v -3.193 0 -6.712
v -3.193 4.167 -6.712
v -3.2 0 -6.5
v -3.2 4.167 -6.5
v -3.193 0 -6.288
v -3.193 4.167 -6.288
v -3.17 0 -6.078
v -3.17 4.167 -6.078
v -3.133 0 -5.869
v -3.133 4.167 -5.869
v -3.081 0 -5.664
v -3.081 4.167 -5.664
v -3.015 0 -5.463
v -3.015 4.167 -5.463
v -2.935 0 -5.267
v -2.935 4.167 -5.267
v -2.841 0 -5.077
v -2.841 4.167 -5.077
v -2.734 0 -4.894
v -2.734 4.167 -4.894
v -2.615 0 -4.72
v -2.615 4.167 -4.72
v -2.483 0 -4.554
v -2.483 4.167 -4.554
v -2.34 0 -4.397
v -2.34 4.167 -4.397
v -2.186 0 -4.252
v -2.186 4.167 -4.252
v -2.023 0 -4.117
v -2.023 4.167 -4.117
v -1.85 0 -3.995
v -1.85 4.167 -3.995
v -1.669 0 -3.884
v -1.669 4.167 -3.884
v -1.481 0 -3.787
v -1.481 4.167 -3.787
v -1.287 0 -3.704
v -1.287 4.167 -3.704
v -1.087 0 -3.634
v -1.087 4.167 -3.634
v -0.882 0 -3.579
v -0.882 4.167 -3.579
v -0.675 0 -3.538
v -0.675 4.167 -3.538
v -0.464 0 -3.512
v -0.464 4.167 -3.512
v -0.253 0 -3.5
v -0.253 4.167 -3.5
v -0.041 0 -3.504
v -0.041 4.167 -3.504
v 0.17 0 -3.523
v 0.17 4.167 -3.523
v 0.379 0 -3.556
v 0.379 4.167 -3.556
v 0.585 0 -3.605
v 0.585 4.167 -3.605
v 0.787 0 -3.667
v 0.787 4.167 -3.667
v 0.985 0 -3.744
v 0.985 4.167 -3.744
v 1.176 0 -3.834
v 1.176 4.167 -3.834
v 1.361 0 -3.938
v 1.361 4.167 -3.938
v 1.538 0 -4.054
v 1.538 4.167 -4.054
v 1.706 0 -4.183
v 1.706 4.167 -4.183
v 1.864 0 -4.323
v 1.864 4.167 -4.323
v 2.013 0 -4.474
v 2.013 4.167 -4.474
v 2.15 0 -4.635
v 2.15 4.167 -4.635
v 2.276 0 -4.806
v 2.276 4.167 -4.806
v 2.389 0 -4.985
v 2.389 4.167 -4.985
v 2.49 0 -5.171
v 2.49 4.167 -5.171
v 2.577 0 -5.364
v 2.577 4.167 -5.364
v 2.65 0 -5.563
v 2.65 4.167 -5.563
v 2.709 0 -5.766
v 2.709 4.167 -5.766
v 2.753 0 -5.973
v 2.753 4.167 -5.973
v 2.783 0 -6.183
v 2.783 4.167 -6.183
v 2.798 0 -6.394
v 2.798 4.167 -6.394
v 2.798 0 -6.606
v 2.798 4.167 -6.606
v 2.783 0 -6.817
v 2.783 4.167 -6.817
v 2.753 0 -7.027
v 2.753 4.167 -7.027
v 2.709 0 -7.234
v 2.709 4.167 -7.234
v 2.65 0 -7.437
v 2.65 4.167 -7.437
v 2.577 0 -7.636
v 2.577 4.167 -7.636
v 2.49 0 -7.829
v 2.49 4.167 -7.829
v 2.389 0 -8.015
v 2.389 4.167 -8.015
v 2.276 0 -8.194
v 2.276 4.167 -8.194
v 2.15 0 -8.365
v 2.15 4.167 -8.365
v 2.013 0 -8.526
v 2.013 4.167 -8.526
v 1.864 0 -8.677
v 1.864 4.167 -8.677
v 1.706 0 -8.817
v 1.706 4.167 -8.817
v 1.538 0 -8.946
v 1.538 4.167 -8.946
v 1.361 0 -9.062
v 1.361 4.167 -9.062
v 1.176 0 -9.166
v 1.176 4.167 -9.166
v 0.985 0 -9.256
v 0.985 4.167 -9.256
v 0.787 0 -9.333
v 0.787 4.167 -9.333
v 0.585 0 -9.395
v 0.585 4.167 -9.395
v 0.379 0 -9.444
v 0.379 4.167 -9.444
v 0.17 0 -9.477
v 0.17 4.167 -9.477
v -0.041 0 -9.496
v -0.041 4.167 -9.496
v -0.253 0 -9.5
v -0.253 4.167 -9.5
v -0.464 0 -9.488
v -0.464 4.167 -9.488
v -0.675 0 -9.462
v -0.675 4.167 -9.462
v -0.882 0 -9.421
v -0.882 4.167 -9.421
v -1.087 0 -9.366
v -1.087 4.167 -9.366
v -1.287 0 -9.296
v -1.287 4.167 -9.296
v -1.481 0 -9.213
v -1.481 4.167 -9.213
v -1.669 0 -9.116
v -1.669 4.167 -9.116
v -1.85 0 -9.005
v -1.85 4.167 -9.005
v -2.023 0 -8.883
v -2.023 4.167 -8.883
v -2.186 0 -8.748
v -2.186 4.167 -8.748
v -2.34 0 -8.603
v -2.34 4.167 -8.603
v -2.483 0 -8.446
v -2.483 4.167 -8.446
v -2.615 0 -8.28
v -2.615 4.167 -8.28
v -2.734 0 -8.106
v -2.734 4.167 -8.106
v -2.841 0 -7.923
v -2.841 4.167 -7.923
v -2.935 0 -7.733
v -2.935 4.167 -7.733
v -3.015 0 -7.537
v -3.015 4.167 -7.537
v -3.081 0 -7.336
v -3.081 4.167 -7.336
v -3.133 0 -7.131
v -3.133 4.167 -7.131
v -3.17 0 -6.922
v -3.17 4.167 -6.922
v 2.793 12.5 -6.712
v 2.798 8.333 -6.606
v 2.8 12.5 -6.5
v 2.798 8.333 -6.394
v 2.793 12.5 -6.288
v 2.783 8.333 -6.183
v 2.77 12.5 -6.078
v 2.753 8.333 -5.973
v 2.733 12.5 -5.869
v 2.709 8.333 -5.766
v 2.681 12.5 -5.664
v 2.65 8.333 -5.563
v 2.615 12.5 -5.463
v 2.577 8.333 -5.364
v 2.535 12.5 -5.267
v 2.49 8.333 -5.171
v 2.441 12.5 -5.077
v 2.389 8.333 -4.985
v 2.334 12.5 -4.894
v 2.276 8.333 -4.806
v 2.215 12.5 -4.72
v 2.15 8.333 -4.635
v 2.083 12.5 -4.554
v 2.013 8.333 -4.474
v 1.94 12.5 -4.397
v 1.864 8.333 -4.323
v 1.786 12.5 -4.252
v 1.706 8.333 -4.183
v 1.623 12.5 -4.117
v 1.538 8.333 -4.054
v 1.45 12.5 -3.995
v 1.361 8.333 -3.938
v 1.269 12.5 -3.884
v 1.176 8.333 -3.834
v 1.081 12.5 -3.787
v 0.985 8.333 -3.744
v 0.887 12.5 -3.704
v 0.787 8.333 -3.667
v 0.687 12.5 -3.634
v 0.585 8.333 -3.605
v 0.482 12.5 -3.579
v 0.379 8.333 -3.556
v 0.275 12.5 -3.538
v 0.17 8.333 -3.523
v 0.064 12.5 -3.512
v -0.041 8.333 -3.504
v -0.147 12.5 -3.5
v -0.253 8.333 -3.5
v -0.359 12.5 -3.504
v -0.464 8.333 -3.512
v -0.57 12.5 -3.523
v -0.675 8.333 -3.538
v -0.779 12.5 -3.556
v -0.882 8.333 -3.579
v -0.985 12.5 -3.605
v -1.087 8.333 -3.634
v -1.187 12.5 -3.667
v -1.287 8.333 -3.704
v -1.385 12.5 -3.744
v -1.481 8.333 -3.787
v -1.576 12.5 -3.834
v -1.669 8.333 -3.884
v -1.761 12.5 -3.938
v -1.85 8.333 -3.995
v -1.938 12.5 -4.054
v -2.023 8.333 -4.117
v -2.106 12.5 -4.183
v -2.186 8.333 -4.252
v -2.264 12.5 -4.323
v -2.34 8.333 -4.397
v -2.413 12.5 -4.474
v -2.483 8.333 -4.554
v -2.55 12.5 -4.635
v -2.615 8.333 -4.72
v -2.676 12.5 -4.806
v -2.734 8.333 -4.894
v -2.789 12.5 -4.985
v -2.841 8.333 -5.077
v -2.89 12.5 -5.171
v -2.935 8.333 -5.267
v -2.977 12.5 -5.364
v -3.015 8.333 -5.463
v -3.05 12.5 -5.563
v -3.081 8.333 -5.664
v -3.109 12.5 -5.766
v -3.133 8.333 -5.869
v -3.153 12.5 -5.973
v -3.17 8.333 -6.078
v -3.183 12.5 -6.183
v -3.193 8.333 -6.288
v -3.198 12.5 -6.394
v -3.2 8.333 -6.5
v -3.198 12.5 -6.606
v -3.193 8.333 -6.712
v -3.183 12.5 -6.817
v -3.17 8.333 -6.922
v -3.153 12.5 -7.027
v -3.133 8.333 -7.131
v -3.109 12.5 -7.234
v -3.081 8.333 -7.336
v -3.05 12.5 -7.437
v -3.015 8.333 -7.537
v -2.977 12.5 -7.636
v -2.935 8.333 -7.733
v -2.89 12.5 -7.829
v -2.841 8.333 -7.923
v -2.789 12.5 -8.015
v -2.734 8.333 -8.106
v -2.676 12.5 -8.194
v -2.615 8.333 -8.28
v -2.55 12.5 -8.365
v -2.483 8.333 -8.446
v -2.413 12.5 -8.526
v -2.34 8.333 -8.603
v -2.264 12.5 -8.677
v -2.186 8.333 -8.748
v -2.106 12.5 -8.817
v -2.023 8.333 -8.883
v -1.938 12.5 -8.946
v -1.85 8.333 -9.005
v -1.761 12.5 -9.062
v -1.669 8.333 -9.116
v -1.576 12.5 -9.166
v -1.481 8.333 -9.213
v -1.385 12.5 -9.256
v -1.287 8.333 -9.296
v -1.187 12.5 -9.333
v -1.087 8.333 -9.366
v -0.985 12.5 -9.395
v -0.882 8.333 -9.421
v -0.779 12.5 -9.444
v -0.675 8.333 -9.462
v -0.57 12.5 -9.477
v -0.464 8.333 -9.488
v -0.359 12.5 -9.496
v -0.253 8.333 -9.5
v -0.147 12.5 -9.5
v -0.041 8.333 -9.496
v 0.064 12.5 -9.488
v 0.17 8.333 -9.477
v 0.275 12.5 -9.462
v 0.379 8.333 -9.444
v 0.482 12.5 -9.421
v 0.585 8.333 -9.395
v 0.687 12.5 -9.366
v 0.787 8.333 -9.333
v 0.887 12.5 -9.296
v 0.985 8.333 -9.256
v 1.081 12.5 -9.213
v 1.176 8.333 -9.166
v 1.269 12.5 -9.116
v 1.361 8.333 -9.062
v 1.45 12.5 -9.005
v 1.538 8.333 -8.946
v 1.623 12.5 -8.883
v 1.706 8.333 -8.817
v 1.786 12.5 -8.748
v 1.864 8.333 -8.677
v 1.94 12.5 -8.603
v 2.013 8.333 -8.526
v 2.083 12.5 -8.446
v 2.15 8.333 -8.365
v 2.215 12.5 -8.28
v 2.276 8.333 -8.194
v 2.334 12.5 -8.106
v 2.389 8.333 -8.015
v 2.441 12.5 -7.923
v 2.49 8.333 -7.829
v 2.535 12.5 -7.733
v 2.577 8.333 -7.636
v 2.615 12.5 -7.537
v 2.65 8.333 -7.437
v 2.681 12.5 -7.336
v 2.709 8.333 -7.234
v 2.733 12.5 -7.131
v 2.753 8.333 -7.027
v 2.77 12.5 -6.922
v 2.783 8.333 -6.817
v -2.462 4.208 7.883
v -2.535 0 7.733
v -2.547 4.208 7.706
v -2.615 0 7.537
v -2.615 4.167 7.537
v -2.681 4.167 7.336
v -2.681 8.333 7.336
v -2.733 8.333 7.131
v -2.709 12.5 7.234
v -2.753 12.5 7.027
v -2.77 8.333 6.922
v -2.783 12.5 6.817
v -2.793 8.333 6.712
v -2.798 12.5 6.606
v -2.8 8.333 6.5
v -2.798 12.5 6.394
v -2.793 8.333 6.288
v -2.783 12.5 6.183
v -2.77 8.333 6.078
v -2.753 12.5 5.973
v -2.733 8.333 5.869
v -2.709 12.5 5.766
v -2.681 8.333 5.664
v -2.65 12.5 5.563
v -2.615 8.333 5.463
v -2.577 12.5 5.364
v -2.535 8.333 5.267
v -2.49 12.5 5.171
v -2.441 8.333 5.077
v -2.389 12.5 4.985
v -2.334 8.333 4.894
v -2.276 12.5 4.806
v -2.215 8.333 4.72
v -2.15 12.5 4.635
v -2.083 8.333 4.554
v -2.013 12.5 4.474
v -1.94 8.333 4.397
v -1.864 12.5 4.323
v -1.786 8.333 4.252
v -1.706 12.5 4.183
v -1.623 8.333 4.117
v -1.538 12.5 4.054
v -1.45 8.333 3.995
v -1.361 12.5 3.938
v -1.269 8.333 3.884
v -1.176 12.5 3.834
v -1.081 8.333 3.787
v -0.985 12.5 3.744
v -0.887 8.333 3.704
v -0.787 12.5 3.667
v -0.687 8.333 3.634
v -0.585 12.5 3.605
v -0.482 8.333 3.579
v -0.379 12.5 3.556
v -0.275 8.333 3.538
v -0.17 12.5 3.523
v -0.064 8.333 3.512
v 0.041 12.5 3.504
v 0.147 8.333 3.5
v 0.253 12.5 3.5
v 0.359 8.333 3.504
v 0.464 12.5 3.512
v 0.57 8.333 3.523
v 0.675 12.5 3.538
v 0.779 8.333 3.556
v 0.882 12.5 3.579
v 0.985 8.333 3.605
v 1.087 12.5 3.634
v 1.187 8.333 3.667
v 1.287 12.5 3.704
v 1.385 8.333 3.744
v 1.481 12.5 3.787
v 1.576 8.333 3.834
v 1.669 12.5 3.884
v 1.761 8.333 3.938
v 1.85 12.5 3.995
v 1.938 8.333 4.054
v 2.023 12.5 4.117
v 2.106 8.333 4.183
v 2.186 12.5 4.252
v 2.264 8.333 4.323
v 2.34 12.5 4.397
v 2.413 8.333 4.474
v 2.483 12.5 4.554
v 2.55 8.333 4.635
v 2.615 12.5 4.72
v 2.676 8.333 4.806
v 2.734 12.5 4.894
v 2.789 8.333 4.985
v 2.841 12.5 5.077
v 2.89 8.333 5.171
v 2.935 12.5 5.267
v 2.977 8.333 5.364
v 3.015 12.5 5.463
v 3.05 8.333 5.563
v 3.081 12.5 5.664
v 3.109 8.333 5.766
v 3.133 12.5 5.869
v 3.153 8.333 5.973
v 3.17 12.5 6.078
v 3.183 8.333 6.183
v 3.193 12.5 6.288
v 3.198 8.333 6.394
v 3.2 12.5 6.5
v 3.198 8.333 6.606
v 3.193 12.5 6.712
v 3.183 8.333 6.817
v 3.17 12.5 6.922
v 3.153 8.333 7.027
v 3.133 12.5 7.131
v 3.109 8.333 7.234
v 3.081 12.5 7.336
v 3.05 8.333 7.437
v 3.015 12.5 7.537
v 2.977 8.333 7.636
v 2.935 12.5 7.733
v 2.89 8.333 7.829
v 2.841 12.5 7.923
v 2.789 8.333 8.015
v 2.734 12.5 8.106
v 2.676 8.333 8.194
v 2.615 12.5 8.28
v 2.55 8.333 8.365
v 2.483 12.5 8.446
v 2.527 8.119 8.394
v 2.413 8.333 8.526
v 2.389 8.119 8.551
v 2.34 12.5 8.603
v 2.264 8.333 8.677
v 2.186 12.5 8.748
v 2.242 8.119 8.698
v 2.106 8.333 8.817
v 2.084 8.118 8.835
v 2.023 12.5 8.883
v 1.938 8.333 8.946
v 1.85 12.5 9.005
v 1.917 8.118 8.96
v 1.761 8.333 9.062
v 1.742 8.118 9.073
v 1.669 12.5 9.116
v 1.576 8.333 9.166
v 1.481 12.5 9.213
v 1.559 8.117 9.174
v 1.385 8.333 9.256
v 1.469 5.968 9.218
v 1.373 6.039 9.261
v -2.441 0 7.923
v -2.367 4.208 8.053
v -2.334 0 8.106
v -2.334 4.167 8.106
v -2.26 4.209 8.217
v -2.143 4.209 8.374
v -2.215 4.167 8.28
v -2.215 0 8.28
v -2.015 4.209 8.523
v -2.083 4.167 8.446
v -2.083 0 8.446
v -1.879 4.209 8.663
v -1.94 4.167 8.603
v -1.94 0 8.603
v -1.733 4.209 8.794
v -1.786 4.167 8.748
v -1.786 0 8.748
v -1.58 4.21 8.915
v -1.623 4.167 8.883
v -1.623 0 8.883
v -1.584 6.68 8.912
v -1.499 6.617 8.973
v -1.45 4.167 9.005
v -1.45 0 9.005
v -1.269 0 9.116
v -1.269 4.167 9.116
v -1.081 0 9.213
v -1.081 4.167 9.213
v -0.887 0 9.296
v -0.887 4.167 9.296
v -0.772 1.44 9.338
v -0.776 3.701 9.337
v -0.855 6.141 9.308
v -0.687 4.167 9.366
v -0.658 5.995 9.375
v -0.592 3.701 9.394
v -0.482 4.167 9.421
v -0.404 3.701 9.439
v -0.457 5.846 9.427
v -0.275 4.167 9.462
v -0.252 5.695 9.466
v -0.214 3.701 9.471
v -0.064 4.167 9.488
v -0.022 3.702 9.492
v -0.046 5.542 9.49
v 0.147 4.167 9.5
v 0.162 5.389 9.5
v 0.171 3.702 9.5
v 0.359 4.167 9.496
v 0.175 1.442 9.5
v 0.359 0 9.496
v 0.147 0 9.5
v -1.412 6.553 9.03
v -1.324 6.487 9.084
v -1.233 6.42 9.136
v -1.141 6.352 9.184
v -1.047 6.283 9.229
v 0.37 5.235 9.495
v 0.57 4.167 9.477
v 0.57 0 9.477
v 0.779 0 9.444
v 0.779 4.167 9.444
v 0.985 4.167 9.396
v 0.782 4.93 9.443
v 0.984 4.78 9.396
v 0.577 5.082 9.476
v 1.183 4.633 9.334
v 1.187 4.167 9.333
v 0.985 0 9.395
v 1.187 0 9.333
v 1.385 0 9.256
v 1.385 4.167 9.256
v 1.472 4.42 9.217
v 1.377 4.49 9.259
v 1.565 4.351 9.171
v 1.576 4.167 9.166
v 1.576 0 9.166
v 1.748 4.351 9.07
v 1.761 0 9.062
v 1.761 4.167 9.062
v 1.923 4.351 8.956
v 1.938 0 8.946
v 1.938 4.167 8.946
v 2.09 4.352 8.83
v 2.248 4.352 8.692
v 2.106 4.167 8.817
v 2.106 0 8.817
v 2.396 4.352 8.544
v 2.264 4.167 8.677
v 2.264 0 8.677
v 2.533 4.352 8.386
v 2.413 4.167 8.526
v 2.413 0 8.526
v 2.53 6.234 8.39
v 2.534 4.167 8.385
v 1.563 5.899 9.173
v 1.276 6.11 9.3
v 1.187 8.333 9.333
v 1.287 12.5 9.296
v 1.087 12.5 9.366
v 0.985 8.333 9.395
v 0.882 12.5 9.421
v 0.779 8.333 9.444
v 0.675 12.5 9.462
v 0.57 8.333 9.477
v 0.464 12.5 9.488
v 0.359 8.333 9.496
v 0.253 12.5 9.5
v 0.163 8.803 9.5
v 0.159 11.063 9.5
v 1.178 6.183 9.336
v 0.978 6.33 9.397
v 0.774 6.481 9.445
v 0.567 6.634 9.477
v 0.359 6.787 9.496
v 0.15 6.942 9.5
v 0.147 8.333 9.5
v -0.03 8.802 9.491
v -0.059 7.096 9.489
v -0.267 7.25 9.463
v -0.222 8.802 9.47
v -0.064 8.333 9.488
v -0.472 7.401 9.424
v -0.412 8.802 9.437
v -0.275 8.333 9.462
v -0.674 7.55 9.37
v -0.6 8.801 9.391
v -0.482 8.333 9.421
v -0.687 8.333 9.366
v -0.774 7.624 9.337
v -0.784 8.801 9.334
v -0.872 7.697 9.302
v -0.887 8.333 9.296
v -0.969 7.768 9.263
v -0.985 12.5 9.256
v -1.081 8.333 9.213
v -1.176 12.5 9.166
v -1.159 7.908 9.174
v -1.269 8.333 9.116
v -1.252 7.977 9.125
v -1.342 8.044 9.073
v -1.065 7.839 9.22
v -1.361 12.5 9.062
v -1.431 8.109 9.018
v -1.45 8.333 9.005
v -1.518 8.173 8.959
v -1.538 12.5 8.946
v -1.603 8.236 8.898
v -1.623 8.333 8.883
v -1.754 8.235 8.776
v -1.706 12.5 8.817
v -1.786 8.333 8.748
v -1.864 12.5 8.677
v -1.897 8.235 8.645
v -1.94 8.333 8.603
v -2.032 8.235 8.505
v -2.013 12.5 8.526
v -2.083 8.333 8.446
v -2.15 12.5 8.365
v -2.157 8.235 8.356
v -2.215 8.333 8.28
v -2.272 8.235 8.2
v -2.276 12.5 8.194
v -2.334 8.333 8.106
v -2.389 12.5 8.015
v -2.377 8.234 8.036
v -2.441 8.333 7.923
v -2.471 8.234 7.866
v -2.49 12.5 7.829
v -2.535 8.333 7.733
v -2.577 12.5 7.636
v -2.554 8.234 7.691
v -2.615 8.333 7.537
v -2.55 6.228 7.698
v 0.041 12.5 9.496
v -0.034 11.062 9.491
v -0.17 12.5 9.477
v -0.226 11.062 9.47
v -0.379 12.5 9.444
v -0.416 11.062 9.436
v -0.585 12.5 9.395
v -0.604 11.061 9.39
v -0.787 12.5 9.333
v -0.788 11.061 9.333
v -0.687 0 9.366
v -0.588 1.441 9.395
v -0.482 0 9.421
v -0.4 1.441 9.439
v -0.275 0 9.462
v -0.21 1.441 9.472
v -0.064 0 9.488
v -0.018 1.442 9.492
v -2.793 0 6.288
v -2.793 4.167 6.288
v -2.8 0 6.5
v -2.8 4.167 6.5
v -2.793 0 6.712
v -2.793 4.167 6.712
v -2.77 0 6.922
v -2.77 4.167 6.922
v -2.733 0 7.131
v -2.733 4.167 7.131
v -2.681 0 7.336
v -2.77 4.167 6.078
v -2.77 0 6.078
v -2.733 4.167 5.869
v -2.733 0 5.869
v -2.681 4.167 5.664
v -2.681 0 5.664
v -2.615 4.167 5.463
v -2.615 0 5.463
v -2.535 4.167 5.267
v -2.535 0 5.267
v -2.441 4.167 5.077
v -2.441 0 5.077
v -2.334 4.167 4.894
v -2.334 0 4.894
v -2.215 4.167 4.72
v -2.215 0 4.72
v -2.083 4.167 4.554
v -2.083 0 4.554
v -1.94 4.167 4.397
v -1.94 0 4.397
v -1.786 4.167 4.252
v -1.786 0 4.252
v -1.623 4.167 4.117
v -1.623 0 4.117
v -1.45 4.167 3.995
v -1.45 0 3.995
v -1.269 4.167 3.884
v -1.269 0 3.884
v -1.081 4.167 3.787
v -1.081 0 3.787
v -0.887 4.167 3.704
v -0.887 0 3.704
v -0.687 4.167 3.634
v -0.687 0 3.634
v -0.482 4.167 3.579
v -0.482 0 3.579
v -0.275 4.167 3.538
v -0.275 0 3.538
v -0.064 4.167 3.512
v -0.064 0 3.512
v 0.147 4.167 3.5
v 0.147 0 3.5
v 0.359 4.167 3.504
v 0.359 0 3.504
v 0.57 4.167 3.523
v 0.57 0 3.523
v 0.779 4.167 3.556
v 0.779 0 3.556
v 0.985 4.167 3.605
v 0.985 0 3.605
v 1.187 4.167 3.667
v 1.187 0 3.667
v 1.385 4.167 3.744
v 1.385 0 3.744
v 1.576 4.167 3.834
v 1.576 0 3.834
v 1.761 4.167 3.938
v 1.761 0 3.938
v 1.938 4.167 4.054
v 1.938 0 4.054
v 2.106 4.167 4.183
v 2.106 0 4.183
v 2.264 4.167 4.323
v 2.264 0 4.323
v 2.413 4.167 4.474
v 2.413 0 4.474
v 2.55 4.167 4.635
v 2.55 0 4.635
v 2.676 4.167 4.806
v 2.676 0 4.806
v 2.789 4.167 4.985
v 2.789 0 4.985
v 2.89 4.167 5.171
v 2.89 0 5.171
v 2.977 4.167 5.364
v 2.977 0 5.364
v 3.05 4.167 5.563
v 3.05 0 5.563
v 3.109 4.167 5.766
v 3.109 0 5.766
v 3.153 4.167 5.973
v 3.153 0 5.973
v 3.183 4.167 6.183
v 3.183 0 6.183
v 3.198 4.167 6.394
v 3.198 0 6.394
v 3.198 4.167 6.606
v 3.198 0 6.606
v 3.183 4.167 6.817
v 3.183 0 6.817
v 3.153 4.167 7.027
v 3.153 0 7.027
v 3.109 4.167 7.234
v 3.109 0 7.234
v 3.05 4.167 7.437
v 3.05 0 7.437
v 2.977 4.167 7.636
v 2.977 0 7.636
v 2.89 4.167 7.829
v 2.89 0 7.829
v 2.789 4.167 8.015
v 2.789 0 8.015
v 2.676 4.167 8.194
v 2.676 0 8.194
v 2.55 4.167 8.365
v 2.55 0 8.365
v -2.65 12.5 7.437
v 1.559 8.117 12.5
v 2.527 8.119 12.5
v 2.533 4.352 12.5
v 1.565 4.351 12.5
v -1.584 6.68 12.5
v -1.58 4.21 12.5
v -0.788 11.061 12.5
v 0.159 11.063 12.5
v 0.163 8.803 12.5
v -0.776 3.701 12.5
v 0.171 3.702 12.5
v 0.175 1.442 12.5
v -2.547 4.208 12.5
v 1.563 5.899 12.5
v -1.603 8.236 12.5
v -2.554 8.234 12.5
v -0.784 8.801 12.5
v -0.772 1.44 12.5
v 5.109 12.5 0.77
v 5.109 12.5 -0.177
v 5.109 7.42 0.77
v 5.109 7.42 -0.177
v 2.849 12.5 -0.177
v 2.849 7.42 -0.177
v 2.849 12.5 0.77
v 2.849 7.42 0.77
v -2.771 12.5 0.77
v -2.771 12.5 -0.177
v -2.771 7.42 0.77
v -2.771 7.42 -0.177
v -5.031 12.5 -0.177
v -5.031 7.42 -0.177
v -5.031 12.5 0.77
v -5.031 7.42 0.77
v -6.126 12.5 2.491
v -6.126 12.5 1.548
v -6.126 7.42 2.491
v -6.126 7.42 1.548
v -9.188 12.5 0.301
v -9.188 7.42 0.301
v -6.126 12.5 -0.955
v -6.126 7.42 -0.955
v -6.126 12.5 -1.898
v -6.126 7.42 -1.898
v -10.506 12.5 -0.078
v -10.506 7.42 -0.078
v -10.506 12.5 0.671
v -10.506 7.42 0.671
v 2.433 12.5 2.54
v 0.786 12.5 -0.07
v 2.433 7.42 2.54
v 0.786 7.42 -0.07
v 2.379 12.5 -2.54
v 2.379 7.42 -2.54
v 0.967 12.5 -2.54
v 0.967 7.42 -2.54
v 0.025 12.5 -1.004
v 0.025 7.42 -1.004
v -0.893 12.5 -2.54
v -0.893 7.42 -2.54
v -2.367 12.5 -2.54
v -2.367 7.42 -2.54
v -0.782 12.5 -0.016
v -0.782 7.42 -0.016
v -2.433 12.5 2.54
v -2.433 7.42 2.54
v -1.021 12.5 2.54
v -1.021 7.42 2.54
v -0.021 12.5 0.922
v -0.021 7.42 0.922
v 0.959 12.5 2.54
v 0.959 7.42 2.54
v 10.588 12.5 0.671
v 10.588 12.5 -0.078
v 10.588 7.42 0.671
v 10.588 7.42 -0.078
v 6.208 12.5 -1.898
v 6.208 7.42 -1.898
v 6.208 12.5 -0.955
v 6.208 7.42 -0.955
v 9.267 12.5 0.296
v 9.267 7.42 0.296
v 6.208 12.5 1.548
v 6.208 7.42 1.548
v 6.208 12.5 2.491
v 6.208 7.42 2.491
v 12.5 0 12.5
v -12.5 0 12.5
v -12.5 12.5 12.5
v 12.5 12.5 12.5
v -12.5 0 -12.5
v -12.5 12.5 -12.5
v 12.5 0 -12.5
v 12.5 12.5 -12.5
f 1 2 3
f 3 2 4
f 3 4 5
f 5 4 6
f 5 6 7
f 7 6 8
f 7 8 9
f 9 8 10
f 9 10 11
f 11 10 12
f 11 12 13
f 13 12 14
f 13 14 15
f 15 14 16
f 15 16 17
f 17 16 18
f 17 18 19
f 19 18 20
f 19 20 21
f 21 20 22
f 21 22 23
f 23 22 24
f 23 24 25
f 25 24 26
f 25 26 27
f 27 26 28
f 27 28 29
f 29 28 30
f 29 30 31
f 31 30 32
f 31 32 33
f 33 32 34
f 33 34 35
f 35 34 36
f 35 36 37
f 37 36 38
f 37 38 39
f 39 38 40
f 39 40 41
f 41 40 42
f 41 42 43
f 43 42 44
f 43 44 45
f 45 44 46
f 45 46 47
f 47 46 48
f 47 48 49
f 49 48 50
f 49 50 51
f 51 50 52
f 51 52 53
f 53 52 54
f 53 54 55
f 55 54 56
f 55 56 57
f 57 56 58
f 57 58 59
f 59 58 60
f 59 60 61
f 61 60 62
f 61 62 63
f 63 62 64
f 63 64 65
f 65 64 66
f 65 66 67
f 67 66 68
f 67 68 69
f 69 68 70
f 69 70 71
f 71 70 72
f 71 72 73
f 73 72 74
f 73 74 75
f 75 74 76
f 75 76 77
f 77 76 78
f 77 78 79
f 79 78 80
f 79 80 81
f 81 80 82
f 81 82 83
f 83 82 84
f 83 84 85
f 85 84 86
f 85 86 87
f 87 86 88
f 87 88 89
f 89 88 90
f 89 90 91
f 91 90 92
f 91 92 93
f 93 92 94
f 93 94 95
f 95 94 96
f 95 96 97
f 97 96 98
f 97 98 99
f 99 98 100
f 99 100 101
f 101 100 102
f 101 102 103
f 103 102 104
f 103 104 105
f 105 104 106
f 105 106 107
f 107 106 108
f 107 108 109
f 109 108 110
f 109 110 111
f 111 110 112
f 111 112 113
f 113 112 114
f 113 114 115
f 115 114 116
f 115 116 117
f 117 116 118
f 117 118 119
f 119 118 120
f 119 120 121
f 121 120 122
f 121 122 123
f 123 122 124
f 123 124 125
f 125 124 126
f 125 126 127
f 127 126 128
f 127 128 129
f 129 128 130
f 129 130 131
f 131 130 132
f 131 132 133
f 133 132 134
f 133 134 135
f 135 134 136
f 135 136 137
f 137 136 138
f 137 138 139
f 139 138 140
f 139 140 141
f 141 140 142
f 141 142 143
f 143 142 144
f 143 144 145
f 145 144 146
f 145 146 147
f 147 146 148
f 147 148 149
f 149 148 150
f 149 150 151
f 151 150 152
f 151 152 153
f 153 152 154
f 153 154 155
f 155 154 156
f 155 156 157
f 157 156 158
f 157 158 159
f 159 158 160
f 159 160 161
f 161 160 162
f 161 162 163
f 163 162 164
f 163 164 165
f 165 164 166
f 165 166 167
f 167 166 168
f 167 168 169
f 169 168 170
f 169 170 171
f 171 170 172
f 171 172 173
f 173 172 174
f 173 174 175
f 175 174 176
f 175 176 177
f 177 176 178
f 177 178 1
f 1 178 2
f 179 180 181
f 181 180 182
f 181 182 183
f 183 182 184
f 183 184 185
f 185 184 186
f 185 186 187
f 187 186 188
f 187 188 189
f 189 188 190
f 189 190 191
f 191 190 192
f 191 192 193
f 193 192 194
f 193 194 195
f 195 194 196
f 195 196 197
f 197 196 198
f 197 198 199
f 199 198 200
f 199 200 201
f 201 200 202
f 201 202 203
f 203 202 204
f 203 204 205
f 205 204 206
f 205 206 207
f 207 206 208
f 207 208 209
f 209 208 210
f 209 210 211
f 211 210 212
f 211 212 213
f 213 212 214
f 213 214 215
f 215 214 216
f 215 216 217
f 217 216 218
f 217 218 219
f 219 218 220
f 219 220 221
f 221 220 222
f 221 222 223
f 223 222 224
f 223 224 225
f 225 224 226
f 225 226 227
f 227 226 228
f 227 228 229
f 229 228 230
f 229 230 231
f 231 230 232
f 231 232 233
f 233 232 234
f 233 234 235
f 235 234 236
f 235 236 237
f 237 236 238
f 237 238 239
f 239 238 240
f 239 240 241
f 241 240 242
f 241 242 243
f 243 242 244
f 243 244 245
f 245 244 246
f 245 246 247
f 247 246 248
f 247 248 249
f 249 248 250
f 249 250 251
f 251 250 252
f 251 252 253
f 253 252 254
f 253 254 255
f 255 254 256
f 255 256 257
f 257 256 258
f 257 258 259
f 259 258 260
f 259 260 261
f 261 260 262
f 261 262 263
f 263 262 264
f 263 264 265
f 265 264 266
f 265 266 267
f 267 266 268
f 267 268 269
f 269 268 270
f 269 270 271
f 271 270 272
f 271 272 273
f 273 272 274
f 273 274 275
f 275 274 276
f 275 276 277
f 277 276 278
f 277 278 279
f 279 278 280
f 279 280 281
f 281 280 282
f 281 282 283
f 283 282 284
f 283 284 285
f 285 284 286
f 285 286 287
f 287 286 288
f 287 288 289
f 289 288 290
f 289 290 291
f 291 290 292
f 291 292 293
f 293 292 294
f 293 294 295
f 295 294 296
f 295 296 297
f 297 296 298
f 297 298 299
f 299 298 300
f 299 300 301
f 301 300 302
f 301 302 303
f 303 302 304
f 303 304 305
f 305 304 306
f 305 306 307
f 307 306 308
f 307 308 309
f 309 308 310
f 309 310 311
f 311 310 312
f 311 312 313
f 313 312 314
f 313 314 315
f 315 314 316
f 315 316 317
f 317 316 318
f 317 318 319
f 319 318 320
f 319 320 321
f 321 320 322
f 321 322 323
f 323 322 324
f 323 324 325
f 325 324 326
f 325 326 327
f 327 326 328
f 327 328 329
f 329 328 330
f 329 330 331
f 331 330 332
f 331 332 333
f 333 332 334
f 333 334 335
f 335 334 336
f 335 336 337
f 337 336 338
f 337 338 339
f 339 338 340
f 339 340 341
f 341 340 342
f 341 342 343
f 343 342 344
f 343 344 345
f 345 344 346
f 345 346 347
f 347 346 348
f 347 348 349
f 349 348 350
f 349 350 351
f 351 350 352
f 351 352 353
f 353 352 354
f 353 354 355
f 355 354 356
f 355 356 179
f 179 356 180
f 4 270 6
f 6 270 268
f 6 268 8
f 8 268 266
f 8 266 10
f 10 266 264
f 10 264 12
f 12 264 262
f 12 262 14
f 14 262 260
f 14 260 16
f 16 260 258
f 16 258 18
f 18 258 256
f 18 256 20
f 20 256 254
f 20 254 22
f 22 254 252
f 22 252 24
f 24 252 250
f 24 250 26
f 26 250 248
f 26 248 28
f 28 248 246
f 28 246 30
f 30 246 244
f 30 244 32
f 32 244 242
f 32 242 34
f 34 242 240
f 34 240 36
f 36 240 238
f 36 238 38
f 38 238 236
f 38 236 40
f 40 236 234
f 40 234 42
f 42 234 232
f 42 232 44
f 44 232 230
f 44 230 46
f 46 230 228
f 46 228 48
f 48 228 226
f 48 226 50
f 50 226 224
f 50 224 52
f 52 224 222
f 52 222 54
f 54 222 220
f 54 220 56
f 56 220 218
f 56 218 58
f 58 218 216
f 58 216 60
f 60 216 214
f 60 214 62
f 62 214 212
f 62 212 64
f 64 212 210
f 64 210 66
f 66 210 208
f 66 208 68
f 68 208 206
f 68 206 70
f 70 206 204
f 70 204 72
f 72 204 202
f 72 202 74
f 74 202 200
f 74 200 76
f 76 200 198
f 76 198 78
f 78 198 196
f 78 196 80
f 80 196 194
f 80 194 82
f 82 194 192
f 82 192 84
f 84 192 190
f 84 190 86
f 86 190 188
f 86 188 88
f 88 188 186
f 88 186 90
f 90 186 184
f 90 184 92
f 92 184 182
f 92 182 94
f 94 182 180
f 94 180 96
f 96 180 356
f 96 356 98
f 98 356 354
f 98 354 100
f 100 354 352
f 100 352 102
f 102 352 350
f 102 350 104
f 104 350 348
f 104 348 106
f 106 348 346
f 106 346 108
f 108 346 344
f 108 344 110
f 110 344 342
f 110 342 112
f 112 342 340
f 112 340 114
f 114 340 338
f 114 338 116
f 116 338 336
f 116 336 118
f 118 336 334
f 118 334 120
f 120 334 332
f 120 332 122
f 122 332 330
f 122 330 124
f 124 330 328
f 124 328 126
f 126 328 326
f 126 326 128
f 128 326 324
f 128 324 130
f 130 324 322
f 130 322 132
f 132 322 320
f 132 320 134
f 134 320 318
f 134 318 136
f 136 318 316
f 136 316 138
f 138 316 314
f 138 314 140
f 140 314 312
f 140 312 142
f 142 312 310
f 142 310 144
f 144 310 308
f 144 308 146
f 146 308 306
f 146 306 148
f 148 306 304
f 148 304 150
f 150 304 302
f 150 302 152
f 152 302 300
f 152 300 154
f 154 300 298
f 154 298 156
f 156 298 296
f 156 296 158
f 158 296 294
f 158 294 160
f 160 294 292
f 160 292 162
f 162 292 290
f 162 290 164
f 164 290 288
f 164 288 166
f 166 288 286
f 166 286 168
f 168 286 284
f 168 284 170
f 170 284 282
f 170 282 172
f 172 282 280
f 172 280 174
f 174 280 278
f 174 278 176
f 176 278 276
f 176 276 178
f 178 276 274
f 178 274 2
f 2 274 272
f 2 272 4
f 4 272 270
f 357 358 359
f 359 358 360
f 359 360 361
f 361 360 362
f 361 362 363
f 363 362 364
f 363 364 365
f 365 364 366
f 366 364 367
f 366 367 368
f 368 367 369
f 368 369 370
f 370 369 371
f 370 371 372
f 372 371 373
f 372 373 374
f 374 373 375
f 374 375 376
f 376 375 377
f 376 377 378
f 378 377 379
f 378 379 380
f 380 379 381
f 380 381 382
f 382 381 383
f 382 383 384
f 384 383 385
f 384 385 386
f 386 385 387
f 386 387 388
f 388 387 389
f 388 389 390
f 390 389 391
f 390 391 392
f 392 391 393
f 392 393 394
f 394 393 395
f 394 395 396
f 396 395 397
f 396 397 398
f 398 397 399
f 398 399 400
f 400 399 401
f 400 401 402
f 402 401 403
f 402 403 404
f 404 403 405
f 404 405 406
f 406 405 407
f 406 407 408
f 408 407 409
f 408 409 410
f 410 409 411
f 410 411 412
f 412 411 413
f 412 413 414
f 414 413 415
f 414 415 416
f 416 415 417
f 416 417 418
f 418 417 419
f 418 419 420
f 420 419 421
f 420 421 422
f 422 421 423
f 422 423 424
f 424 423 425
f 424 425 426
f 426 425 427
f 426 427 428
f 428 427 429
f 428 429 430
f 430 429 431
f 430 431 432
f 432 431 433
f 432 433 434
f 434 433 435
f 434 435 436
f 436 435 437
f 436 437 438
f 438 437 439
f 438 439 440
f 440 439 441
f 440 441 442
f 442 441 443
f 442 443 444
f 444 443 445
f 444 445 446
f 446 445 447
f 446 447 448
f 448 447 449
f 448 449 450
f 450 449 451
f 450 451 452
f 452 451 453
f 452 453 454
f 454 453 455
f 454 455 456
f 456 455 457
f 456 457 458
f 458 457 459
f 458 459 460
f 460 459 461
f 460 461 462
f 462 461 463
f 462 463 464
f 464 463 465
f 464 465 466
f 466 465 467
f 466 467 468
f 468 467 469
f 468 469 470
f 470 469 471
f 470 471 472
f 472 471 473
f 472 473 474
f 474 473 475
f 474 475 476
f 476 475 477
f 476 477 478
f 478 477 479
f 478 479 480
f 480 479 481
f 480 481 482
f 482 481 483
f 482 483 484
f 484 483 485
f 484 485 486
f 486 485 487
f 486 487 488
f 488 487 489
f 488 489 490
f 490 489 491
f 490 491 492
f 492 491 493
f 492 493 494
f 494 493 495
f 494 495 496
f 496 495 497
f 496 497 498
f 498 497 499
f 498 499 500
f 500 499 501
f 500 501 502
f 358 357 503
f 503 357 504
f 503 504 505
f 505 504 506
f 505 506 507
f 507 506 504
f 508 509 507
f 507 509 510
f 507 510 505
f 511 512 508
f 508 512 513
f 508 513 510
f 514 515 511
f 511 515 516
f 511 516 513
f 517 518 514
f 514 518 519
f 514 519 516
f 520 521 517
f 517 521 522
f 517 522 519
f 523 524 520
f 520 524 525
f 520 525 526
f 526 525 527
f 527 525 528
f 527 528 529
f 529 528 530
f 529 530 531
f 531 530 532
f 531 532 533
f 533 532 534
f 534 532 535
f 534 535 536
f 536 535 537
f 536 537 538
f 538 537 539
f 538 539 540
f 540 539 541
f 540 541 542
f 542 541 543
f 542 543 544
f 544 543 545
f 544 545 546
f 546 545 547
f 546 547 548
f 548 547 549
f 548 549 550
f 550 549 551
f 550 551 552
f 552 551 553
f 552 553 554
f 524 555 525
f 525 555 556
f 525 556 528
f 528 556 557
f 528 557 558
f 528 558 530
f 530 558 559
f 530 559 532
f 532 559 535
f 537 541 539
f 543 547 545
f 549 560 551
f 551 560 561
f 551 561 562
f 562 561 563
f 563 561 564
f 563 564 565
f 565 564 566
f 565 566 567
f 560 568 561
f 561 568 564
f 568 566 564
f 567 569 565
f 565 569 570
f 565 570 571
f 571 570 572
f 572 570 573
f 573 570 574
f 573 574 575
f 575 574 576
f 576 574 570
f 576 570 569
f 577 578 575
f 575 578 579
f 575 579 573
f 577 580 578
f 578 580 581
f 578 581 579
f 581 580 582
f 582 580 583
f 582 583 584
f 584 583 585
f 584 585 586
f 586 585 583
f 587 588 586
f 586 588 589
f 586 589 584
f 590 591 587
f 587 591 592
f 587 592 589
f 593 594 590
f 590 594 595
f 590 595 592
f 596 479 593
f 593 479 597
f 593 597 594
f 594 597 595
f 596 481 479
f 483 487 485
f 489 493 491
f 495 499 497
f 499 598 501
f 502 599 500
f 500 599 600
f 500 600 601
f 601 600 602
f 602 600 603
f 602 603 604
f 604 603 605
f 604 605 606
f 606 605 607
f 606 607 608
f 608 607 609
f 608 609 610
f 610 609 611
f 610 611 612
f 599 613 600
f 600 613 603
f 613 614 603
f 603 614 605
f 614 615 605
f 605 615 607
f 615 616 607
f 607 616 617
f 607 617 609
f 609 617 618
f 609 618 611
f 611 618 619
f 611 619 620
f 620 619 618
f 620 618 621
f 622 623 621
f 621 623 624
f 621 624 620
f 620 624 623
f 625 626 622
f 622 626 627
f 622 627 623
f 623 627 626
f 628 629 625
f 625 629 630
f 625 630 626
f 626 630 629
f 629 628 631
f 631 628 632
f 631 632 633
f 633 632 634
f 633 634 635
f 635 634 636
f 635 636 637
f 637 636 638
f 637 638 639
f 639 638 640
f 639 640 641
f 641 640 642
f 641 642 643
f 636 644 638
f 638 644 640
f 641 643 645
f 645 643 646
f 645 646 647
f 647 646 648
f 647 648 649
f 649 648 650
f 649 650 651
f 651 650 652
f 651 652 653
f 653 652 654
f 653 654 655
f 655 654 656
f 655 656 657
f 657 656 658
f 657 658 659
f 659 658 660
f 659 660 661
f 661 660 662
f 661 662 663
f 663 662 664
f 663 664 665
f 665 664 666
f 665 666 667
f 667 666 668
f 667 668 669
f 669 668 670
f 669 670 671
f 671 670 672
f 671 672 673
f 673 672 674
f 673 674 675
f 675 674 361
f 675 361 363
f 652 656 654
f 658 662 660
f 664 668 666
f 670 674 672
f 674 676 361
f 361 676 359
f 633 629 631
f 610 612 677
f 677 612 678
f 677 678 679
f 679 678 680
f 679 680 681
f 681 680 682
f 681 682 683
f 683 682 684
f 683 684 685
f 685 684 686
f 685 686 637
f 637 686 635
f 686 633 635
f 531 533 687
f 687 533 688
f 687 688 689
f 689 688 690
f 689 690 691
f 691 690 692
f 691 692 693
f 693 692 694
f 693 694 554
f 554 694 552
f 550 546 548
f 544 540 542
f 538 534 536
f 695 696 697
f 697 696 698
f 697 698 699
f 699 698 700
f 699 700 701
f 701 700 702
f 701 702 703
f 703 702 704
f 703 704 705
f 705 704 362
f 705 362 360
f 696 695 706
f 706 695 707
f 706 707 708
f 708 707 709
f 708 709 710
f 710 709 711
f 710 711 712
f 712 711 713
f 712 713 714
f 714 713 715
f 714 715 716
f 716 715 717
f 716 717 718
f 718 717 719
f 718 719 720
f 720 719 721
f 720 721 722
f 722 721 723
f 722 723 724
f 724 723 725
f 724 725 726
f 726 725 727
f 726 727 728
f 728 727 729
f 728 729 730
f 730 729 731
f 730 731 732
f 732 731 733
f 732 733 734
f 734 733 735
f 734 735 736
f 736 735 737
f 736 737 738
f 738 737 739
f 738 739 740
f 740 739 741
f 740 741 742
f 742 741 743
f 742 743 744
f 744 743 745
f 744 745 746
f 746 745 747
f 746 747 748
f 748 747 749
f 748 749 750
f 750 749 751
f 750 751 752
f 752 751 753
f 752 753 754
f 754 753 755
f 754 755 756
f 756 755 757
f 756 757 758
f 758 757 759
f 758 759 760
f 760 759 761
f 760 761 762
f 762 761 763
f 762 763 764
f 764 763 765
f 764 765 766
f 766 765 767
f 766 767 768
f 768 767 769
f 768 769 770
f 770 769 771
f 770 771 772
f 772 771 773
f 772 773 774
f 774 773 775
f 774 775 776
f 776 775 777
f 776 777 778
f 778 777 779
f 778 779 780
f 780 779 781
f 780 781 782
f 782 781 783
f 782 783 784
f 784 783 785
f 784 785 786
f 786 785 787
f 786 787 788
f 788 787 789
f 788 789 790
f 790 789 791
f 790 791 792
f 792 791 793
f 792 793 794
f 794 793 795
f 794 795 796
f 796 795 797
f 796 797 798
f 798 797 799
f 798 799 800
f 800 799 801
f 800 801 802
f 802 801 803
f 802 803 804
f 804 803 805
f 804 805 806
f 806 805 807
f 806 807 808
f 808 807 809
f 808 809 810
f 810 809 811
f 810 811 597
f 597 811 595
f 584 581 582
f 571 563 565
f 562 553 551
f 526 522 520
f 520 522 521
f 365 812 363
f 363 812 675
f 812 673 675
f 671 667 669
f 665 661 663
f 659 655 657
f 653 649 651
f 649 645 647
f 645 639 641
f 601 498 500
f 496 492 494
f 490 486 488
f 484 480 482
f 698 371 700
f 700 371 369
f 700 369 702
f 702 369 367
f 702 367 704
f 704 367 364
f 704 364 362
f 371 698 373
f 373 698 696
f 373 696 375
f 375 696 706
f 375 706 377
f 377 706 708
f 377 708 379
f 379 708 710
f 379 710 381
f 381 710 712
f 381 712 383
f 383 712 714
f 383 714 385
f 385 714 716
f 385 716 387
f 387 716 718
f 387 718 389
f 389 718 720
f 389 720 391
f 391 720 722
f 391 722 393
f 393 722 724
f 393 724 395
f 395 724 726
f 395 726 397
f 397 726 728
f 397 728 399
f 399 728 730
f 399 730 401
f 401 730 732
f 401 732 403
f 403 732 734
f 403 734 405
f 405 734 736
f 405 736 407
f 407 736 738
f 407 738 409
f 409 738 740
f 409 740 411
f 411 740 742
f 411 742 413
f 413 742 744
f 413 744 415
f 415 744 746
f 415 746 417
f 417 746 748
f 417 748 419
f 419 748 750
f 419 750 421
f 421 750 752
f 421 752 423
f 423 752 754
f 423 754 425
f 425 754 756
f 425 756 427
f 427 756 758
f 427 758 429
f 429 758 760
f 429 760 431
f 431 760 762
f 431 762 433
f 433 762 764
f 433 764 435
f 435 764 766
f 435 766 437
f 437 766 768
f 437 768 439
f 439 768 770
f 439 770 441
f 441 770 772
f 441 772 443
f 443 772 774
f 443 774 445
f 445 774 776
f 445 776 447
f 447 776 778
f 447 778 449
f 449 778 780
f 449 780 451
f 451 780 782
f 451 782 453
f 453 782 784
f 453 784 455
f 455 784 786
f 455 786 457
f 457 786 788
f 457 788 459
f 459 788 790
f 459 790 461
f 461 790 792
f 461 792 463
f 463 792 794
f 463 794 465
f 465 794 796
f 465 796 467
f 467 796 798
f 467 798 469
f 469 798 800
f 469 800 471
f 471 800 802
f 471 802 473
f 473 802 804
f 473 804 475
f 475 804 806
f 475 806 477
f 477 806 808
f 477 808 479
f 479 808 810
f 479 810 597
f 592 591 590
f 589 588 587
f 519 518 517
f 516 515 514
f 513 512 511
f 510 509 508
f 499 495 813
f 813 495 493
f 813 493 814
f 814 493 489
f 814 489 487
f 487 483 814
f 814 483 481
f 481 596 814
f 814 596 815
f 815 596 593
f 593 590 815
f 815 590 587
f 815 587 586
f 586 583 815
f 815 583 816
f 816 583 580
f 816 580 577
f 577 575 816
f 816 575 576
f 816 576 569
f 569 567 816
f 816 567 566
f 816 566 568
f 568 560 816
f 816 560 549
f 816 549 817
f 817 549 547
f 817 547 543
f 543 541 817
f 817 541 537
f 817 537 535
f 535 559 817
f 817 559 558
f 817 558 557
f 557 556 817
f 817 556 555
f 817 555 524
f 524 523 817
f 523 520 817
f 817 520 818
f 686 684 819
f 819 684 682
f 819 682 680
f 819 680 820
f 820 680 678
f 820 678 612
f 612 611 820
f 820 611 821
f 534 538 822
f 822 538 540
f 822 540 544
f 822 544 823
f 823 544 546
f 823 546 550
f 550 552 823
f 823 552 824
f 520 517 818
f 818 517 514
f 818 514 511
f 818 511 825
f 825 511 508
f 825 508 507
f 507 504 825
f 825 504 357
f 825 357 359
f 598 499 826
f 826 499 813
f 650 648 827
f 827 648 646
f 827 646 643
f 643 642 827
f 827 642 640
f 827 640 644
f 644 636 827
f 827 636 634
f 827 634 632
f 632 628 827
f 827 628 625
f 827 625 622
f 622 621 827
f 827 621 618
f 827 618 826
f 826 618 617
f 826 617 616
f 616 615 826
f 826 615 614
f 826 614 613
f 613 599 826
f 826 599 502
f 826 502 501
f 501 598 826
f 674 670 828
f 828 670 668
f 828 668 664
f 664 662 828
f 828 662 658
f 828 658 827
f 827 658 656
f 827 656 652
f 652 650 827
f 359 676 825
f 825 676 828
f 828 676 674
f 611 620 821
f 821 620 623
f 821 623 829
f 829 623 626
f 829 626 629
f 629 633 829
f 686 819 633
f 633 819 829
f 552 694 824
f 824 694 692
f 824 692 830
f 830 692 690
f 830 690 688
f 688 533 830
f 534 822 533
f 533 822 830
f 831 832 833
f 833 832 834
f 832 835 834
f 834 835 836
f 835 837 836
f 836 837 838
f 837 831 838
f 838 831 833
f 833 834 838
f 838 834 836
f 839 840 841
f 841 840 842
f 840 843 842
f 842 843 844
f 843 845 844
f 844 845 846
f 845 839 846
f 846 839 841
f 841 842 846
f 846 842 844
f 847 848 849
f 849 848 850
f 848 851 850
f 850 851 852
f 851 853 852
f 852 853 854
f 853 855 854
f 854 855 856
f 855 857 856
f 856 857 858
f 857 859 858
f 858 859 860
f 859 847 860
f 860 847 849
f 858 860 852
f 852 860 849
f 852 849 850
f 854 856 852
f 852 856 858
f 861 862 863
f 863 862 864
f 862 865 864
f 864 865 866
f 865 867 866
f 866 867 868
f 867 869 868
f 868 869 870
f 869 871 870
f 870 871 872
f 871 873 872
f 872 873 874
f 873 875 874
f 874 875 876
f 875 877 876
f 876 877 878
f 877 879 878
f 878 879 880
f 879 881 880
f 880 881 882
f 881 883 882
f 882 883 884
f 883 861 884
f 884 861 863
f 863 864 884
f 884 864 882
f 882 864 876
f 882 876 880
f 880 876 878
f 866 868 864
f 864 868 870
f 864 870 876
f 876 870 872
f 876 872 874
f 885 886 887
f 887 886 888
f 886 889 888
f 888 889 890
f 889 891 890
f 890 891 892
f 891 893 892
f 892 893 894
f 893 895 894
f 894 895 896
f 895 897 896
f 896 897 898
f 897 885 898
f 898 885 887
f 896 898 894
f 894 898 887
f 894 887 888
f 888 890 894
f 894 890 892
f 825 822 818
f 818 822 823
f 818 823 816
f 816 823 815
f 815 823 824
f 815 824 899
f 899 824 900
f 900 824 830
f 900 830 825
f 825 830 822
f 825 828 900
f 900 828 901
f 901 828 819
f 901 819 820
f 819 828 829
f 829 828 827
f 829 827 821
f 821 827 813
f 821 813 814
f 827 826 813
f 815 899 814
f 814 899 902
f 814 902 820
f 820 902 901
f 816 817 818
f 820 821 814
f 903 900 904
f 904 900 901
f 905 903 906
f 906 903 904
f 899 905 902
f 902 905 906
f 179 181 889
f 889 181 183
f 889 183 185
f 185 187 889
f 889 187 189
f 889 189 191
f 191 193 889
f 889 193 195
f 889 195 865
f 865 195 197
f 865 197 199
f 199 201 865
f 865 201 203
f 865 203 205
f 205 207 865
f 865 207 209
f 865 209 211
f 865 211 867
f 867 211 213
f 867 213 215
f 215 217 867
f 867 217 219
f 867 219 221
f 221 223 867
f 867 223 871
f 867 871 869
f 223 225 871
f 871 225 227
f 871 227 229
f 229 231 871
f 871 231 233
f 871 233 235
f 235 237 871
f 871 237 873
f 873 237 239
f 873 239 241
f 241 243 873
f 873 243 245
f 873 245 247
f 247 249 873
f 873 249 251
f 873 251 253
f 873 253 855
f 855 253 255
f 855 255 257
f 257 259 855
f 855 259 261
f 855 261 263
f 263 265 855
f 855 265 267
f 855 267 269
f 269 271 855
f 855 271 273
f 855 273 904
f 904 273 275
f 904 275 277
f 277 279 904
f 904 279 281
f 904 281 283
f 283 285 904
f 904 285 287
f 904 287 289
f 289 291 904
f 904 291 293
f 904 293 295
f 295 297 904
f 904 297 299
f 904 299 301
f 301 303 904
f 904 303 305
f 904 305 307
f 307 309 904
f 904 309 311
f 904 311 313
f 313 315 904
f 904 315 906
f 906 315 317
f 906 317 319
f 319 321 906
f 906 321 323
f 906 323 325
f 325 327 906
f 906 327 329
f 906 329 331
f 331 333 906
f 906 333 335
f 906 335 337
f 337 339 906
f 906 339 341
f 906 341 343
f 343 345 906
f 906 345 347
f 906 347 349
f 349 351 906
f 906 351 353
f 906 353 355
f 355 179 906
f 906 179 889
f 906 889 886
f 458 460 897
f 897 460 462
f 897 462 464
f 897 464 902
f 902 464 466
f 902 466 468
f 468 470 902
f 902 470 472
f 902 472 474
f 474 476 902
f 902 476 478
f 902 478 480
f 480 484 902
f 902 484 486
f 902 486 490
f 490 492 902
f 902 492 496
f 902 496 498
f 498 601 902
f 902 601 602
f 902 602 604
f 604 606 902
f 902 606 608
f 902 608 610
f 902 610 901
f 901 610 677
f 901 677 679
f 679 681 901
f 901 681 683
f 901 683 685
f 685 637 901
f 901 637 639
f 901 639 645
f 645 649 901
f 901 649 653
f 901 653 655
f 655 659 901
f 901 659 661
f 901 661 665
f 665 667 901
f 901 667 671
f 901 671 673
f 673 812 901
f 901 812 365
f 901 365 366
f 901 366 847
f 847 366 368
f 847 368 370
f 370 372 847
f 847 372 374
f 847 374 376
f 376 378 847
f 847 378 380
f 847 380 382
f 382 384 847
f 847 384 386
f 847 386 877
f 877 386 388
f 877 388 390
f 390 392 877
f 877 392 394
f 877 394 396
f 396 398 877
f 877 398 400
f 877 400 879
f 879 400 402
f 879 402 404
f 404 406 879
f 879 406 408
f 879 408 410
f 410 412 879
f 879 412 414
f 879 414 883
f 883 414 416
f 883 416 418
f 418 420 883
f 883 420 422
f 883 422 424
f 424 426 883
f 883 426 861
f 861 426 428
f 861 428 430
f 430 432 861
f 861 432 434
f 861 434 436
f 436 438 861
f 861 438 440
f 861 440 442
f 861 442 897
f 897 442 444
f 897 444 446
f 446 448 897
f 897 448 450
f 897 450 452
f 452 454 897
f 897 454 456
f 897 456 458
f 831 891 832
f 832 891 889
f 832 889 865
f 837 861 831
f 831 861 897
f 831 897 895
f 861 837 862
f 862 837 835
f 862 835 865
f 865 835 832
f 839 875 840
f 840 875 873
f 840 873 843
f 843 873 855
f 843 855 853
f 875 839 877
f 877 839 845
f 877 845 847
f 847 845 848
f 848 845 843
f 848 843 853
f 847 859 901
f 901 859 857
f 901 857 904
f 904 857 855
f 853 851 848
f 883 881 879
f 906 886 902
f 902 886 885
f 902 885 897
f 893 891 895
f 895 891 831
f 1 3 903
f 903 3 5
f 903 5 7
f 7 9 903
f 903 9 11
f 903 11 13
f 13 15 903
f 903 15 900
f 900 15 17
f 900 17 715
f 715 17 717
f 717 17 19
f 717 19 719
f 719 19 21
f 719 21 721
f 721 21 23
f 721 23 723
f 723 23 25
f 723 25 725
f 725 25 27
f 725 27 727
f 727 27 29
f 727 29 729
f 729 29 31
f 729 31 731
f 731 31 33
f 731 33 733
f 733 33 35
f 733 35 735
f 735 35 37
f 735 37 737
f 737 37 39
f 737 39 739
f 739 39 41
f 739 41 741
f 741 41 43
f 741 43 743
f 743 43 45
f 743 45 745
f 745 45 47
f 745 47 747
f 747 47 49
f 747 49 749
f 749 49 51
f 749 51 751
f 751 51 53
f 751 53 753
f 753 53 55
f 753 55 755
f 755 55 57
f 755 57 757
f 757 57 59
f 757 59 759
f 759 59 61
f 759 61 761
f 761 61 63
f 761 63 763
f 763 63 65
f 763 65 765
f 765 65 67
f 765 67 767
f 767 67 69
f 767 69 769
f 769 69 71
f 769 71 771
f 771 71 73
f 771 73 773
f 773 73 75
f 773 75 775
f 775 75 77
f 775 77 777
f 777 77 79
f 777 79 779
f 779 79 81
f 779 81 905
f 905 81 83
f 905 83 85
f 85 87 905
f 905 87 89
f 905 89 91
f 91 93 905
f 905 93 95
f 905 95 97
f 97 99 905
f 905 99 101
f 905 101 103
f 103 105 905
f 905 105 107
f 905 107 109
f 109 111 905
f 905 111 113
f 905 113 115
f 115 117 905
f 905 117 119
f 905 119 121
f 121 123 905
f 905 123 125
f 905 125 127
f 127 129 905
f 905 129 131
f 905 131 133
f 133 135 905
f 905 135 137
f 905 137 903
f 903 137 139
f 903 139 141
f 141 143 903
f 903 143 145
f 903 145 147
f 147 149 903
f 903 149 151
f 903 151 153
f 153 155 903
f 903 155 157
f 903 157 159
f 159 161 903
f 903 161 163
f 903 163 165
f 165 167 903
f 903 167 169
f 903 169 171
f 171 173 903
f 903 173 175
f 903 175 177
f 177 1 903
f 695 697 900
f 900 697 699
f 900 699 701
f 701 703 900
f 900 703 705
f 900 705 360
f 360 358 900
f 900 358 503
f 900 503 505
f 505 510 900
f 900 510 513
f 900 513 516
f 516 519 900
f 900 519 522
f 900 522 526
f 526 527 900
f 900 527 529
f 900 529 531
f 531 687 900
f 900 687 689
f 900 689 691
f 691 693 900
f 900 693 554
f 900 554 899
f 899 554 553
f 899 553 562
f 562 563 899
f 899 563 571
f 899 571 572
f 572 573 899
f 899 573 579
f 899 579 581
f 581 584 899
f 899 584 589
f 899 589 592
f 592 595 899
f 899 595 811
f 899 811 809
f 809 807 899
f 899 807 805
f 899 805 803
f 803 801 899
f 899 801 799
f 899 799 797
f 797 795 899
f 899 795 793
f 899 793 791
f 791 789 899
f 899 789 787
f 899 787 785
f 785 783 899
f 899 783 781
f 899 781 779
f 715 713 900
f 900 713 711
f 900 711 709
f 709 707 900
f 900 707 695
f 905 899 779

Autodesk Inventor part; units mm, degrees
ref_plane "YZ Plane" through (0, 0, 0) normal (1, 0, 0) x (0, 1, 0)
ref_plane "XZ Plane" through (0, 0, 0) normal (0, 1, 0) x (-1, 0, 0)
ref_plane "XY Plane" through (0, 0, 0) normal (0, 0, 1) x (1, 0, 0)
sketch "Sketch1" plane through (0, 0, 0) normal (0, 1, 0) x (-1, 0, 0)
  line L0 (12.5, 12.5) -> (-12.5, 12.5)
  line L1 (-12.5, 12.5) -> (-12.5, -12.5)
  line L2 (-12.5, -12.5) -> (12.5, -12.5)
  line L3 (12.5, -12.5) -> (12.5, 12.5)
  line L4 (12.5, 12.5) -> (-12.5, -12.5) construction
  line L5 (-12.5, 12.5) -> (12.5, -12.5) construction
  point P0 (0, 0)
  dimension "d0" = 25
  dimension "d1" = 25
extrude "Extrusion1" add sketch "Sketch1" along normal blind 12.5
sketch "Sketch2" plane through (0, 12.5, 0) normal (0, 1, 0) x (1, 0, 0)
  line L0 (-12.5, 12.5) -> (-12.5, -12.5) construction
  line L1 (-12.5, 0) -> (12.5, 0) construction
  line L2 (12.5, -12.5) -> (12.5, 12.5) construction
  line L3 (-6.1256, -2.4906) -> (-10.5058, -0.671)
  line L4 (-10.5058, -0.671) -> (-10.5058, 0.0782)
  line L5 (-10.5058, 0.0782) -> (-6.1256, 1.8978)
  line L6 (-6.1256, 1.8978) -> (-6.1256, 0.9551)
  line L7 (-6.1256, 0.9551) -> (-9.1885, -0.3005)
  line L8 (-9.1885, -0.3005) -> (-6.1256, -1.5479)
  line L9 (-6.1256, -1.5479) -> (-6.1256, -2.4906)
  line L10 (-2.7705, -0.7698) -> (-5.0306, -0.7698)
  line L11 (-5.0306, -0.7698) -> (-5.0306, 0.177)
  line L12 (-5.0306, 0.177) -> (-2.7705, 0.177)
  line L13 (-2.7705, 0.177) -> (-2.7705, -0.7698)
  line L14 (2.433, -2.54) -> (0.9592, -2.54)
  line L15 (0.9592, -2.54) -> (-0.0206, -0.9221)
  line L16 (-0.0206, -0.9221) -> (-1.0209, -2.54)
  line L17 (-1.0209, -2.54) -> (-2.433, -2.54)
  line L18 (-2.433, -2.54) -> (-0.7822, 0.0165)
  line L19 (-0.7822, 0.0165) -> (-2.3671, 2.54)
  line L20 (-2.3671, 2.54) -> (-0.8933, 2.54)
  line L21 (-0.8933, 2.54) -> (0.0247, 1.0045)
  line L22 (0.0247, 1.0045) -> (0.9674, 2.54)
  line L23 (0.9674, 2.54) -> (2.3794, 2.54)
  line L24 (2.3794, 2.54) -> (0.7863, 0.07)
  line L25 (0.7863, 0.07) -> (2.433, -2.54)
  line L26 (5.1088, -0.7698) -> (2.8488, -0.7698)
  line L27 (2.8488, -0.7698) -> (2.8488, 0.177)
  line L28 (2.8488, 0.177) -> (5.1088, 0.177)
  line L29 (5.1088, 0.177) -> (5.1088, -0.7698)
  line L30 (10.5881, -0.671) -> (6.208, -2.4906)
  line L31 (6.208, -2.4906) -> (6.208, -1.5479)
  line L32 (6.208, -1.5479) -> (9.2667, -0.2964)
  line L33 (9.2667, -0.2964) -> (6.208, 0.9551)
  line L34 (6.208, 0.9551) -> (6.208, 1.8978)
  line L35 (6.208, 1.8978) -> (10.5881, 0.0782)
  line L36 (10.5881, 0.0782) -> (10.5881, -0.671)
  point P0 (0, 0)
extrude "Extrusion2" cut sketch "Sketch2" against normal blind 5.08
sketch "Sketch3" plane through (-12.5, 0, 12.5) normal (0, 0, 1) x (1, 0, 0)
  line L0 (12.4794, 12.5) -> (11.4791, 12.5) construction
  line L1 (12.5, 0) -> (12.4794, 12.5) construction
  line L2 (11.7157, 8.8011) -> (11.712, 11.0611)
  line L3 (11.712, 11.0611) -> (12.6588, 11.0627)
  line L4 (12.6588, 11.0627) -> (12.6625, 8.8026)
  line L5 (12.6625, 8.8026) -> (11.7157, 8.8011)
  line L6 (9.9531, 4.2081) -> (9.9464, 8.2342)
  line L7 (9.9464, 8.2342) -> (10.8974, 8.2357)
  line L8 (10.8974, 8.2357) -> (14.0629, 5.8986)
  line L9 (14.0629, 5.8986) -> (14.0592, 8.1174)
  line L10 (14.0592, 8.1174) -> (15.0266, 8.119)
  line L11 (15.0266, 8.119) -> (15.0328, 4.3523)
  line L12 (15.0328, 4.3523) -> (14.0654, 4.3507)
  line L13 (14.0654, 4.3507) -> (10.9164, 6.6797)
  line L14 (10.9164, 6.6797) -> (10.9205, 4.2096)
  line L15 (10.9205, 4.2096) -> (9.9531, 4.2081)
  line L16 (11.7278, 1.4404) -> (11.7241, 3.7005)
  line L17 (11.7241, 3.7005) -> (12.6709, 3.7021)
  line L18 (12.6709, 3.7021) -> (12.6746, 1.442)
  line L19 (12.6746, 1.442) -> (11.7278, 1.4404)
extrude "Extrusion3" cut sketch "Sketch3" against normal blind 5.08
sketch "Sketch11" plane through (0, 12.5, 0) normal (0, 1, 0) x (1, 0, 0)
  circle A0 centre (-0.2, 6.5) radius 3
  circle A1 centre (0.2, -6.5) radius 3
  line L0 (12.5, 12.5) -> (-12.5, 12.5) projected
  line L1 (-12.5, -12.5) -> (12.5, -12.5) projected
  point P0 (0, 0)
  dimension "d81" = 6
  dimension "d82" = 6
  dimension "d83" = 6
extrude "Extrusion4" cut sketch "Sketch11" against normal blind 25.4
equation "\"d46\" = 0.125 * Sketch7_Pitch"
equation "\"Sketch7_Pitch\" = 1.27"
equation "\"d48\" = 60deg"
equation "\"d67\" = 0.125 * Sketch9_Pitch"
equation "\"Sketch9_Pitch\" = 1.27"
equation "\"d69\" = 60deg"
equation "\"d99\" = 0.125 * Sketch12_Pitch"
equation "\"Sketch12_Pitch\" = 1.27"
equation "\"d101\" = 60deg"
equation "\"d120\" = 0.125 * Sketch14_Pitch"
equation "\"Sketch14_Pitch\" = 1.27"
equation "\"d122\" = 60deg"
equation "\"d143\" = 55deg"
equation "\"Sketch16_Pitch\" = 1.27"
equation "\"d161\" = 55deg"
equation "\"Sketch18_Pitch\" = 1.27"
properties part number "squareCalibrationBlock-25mm"
